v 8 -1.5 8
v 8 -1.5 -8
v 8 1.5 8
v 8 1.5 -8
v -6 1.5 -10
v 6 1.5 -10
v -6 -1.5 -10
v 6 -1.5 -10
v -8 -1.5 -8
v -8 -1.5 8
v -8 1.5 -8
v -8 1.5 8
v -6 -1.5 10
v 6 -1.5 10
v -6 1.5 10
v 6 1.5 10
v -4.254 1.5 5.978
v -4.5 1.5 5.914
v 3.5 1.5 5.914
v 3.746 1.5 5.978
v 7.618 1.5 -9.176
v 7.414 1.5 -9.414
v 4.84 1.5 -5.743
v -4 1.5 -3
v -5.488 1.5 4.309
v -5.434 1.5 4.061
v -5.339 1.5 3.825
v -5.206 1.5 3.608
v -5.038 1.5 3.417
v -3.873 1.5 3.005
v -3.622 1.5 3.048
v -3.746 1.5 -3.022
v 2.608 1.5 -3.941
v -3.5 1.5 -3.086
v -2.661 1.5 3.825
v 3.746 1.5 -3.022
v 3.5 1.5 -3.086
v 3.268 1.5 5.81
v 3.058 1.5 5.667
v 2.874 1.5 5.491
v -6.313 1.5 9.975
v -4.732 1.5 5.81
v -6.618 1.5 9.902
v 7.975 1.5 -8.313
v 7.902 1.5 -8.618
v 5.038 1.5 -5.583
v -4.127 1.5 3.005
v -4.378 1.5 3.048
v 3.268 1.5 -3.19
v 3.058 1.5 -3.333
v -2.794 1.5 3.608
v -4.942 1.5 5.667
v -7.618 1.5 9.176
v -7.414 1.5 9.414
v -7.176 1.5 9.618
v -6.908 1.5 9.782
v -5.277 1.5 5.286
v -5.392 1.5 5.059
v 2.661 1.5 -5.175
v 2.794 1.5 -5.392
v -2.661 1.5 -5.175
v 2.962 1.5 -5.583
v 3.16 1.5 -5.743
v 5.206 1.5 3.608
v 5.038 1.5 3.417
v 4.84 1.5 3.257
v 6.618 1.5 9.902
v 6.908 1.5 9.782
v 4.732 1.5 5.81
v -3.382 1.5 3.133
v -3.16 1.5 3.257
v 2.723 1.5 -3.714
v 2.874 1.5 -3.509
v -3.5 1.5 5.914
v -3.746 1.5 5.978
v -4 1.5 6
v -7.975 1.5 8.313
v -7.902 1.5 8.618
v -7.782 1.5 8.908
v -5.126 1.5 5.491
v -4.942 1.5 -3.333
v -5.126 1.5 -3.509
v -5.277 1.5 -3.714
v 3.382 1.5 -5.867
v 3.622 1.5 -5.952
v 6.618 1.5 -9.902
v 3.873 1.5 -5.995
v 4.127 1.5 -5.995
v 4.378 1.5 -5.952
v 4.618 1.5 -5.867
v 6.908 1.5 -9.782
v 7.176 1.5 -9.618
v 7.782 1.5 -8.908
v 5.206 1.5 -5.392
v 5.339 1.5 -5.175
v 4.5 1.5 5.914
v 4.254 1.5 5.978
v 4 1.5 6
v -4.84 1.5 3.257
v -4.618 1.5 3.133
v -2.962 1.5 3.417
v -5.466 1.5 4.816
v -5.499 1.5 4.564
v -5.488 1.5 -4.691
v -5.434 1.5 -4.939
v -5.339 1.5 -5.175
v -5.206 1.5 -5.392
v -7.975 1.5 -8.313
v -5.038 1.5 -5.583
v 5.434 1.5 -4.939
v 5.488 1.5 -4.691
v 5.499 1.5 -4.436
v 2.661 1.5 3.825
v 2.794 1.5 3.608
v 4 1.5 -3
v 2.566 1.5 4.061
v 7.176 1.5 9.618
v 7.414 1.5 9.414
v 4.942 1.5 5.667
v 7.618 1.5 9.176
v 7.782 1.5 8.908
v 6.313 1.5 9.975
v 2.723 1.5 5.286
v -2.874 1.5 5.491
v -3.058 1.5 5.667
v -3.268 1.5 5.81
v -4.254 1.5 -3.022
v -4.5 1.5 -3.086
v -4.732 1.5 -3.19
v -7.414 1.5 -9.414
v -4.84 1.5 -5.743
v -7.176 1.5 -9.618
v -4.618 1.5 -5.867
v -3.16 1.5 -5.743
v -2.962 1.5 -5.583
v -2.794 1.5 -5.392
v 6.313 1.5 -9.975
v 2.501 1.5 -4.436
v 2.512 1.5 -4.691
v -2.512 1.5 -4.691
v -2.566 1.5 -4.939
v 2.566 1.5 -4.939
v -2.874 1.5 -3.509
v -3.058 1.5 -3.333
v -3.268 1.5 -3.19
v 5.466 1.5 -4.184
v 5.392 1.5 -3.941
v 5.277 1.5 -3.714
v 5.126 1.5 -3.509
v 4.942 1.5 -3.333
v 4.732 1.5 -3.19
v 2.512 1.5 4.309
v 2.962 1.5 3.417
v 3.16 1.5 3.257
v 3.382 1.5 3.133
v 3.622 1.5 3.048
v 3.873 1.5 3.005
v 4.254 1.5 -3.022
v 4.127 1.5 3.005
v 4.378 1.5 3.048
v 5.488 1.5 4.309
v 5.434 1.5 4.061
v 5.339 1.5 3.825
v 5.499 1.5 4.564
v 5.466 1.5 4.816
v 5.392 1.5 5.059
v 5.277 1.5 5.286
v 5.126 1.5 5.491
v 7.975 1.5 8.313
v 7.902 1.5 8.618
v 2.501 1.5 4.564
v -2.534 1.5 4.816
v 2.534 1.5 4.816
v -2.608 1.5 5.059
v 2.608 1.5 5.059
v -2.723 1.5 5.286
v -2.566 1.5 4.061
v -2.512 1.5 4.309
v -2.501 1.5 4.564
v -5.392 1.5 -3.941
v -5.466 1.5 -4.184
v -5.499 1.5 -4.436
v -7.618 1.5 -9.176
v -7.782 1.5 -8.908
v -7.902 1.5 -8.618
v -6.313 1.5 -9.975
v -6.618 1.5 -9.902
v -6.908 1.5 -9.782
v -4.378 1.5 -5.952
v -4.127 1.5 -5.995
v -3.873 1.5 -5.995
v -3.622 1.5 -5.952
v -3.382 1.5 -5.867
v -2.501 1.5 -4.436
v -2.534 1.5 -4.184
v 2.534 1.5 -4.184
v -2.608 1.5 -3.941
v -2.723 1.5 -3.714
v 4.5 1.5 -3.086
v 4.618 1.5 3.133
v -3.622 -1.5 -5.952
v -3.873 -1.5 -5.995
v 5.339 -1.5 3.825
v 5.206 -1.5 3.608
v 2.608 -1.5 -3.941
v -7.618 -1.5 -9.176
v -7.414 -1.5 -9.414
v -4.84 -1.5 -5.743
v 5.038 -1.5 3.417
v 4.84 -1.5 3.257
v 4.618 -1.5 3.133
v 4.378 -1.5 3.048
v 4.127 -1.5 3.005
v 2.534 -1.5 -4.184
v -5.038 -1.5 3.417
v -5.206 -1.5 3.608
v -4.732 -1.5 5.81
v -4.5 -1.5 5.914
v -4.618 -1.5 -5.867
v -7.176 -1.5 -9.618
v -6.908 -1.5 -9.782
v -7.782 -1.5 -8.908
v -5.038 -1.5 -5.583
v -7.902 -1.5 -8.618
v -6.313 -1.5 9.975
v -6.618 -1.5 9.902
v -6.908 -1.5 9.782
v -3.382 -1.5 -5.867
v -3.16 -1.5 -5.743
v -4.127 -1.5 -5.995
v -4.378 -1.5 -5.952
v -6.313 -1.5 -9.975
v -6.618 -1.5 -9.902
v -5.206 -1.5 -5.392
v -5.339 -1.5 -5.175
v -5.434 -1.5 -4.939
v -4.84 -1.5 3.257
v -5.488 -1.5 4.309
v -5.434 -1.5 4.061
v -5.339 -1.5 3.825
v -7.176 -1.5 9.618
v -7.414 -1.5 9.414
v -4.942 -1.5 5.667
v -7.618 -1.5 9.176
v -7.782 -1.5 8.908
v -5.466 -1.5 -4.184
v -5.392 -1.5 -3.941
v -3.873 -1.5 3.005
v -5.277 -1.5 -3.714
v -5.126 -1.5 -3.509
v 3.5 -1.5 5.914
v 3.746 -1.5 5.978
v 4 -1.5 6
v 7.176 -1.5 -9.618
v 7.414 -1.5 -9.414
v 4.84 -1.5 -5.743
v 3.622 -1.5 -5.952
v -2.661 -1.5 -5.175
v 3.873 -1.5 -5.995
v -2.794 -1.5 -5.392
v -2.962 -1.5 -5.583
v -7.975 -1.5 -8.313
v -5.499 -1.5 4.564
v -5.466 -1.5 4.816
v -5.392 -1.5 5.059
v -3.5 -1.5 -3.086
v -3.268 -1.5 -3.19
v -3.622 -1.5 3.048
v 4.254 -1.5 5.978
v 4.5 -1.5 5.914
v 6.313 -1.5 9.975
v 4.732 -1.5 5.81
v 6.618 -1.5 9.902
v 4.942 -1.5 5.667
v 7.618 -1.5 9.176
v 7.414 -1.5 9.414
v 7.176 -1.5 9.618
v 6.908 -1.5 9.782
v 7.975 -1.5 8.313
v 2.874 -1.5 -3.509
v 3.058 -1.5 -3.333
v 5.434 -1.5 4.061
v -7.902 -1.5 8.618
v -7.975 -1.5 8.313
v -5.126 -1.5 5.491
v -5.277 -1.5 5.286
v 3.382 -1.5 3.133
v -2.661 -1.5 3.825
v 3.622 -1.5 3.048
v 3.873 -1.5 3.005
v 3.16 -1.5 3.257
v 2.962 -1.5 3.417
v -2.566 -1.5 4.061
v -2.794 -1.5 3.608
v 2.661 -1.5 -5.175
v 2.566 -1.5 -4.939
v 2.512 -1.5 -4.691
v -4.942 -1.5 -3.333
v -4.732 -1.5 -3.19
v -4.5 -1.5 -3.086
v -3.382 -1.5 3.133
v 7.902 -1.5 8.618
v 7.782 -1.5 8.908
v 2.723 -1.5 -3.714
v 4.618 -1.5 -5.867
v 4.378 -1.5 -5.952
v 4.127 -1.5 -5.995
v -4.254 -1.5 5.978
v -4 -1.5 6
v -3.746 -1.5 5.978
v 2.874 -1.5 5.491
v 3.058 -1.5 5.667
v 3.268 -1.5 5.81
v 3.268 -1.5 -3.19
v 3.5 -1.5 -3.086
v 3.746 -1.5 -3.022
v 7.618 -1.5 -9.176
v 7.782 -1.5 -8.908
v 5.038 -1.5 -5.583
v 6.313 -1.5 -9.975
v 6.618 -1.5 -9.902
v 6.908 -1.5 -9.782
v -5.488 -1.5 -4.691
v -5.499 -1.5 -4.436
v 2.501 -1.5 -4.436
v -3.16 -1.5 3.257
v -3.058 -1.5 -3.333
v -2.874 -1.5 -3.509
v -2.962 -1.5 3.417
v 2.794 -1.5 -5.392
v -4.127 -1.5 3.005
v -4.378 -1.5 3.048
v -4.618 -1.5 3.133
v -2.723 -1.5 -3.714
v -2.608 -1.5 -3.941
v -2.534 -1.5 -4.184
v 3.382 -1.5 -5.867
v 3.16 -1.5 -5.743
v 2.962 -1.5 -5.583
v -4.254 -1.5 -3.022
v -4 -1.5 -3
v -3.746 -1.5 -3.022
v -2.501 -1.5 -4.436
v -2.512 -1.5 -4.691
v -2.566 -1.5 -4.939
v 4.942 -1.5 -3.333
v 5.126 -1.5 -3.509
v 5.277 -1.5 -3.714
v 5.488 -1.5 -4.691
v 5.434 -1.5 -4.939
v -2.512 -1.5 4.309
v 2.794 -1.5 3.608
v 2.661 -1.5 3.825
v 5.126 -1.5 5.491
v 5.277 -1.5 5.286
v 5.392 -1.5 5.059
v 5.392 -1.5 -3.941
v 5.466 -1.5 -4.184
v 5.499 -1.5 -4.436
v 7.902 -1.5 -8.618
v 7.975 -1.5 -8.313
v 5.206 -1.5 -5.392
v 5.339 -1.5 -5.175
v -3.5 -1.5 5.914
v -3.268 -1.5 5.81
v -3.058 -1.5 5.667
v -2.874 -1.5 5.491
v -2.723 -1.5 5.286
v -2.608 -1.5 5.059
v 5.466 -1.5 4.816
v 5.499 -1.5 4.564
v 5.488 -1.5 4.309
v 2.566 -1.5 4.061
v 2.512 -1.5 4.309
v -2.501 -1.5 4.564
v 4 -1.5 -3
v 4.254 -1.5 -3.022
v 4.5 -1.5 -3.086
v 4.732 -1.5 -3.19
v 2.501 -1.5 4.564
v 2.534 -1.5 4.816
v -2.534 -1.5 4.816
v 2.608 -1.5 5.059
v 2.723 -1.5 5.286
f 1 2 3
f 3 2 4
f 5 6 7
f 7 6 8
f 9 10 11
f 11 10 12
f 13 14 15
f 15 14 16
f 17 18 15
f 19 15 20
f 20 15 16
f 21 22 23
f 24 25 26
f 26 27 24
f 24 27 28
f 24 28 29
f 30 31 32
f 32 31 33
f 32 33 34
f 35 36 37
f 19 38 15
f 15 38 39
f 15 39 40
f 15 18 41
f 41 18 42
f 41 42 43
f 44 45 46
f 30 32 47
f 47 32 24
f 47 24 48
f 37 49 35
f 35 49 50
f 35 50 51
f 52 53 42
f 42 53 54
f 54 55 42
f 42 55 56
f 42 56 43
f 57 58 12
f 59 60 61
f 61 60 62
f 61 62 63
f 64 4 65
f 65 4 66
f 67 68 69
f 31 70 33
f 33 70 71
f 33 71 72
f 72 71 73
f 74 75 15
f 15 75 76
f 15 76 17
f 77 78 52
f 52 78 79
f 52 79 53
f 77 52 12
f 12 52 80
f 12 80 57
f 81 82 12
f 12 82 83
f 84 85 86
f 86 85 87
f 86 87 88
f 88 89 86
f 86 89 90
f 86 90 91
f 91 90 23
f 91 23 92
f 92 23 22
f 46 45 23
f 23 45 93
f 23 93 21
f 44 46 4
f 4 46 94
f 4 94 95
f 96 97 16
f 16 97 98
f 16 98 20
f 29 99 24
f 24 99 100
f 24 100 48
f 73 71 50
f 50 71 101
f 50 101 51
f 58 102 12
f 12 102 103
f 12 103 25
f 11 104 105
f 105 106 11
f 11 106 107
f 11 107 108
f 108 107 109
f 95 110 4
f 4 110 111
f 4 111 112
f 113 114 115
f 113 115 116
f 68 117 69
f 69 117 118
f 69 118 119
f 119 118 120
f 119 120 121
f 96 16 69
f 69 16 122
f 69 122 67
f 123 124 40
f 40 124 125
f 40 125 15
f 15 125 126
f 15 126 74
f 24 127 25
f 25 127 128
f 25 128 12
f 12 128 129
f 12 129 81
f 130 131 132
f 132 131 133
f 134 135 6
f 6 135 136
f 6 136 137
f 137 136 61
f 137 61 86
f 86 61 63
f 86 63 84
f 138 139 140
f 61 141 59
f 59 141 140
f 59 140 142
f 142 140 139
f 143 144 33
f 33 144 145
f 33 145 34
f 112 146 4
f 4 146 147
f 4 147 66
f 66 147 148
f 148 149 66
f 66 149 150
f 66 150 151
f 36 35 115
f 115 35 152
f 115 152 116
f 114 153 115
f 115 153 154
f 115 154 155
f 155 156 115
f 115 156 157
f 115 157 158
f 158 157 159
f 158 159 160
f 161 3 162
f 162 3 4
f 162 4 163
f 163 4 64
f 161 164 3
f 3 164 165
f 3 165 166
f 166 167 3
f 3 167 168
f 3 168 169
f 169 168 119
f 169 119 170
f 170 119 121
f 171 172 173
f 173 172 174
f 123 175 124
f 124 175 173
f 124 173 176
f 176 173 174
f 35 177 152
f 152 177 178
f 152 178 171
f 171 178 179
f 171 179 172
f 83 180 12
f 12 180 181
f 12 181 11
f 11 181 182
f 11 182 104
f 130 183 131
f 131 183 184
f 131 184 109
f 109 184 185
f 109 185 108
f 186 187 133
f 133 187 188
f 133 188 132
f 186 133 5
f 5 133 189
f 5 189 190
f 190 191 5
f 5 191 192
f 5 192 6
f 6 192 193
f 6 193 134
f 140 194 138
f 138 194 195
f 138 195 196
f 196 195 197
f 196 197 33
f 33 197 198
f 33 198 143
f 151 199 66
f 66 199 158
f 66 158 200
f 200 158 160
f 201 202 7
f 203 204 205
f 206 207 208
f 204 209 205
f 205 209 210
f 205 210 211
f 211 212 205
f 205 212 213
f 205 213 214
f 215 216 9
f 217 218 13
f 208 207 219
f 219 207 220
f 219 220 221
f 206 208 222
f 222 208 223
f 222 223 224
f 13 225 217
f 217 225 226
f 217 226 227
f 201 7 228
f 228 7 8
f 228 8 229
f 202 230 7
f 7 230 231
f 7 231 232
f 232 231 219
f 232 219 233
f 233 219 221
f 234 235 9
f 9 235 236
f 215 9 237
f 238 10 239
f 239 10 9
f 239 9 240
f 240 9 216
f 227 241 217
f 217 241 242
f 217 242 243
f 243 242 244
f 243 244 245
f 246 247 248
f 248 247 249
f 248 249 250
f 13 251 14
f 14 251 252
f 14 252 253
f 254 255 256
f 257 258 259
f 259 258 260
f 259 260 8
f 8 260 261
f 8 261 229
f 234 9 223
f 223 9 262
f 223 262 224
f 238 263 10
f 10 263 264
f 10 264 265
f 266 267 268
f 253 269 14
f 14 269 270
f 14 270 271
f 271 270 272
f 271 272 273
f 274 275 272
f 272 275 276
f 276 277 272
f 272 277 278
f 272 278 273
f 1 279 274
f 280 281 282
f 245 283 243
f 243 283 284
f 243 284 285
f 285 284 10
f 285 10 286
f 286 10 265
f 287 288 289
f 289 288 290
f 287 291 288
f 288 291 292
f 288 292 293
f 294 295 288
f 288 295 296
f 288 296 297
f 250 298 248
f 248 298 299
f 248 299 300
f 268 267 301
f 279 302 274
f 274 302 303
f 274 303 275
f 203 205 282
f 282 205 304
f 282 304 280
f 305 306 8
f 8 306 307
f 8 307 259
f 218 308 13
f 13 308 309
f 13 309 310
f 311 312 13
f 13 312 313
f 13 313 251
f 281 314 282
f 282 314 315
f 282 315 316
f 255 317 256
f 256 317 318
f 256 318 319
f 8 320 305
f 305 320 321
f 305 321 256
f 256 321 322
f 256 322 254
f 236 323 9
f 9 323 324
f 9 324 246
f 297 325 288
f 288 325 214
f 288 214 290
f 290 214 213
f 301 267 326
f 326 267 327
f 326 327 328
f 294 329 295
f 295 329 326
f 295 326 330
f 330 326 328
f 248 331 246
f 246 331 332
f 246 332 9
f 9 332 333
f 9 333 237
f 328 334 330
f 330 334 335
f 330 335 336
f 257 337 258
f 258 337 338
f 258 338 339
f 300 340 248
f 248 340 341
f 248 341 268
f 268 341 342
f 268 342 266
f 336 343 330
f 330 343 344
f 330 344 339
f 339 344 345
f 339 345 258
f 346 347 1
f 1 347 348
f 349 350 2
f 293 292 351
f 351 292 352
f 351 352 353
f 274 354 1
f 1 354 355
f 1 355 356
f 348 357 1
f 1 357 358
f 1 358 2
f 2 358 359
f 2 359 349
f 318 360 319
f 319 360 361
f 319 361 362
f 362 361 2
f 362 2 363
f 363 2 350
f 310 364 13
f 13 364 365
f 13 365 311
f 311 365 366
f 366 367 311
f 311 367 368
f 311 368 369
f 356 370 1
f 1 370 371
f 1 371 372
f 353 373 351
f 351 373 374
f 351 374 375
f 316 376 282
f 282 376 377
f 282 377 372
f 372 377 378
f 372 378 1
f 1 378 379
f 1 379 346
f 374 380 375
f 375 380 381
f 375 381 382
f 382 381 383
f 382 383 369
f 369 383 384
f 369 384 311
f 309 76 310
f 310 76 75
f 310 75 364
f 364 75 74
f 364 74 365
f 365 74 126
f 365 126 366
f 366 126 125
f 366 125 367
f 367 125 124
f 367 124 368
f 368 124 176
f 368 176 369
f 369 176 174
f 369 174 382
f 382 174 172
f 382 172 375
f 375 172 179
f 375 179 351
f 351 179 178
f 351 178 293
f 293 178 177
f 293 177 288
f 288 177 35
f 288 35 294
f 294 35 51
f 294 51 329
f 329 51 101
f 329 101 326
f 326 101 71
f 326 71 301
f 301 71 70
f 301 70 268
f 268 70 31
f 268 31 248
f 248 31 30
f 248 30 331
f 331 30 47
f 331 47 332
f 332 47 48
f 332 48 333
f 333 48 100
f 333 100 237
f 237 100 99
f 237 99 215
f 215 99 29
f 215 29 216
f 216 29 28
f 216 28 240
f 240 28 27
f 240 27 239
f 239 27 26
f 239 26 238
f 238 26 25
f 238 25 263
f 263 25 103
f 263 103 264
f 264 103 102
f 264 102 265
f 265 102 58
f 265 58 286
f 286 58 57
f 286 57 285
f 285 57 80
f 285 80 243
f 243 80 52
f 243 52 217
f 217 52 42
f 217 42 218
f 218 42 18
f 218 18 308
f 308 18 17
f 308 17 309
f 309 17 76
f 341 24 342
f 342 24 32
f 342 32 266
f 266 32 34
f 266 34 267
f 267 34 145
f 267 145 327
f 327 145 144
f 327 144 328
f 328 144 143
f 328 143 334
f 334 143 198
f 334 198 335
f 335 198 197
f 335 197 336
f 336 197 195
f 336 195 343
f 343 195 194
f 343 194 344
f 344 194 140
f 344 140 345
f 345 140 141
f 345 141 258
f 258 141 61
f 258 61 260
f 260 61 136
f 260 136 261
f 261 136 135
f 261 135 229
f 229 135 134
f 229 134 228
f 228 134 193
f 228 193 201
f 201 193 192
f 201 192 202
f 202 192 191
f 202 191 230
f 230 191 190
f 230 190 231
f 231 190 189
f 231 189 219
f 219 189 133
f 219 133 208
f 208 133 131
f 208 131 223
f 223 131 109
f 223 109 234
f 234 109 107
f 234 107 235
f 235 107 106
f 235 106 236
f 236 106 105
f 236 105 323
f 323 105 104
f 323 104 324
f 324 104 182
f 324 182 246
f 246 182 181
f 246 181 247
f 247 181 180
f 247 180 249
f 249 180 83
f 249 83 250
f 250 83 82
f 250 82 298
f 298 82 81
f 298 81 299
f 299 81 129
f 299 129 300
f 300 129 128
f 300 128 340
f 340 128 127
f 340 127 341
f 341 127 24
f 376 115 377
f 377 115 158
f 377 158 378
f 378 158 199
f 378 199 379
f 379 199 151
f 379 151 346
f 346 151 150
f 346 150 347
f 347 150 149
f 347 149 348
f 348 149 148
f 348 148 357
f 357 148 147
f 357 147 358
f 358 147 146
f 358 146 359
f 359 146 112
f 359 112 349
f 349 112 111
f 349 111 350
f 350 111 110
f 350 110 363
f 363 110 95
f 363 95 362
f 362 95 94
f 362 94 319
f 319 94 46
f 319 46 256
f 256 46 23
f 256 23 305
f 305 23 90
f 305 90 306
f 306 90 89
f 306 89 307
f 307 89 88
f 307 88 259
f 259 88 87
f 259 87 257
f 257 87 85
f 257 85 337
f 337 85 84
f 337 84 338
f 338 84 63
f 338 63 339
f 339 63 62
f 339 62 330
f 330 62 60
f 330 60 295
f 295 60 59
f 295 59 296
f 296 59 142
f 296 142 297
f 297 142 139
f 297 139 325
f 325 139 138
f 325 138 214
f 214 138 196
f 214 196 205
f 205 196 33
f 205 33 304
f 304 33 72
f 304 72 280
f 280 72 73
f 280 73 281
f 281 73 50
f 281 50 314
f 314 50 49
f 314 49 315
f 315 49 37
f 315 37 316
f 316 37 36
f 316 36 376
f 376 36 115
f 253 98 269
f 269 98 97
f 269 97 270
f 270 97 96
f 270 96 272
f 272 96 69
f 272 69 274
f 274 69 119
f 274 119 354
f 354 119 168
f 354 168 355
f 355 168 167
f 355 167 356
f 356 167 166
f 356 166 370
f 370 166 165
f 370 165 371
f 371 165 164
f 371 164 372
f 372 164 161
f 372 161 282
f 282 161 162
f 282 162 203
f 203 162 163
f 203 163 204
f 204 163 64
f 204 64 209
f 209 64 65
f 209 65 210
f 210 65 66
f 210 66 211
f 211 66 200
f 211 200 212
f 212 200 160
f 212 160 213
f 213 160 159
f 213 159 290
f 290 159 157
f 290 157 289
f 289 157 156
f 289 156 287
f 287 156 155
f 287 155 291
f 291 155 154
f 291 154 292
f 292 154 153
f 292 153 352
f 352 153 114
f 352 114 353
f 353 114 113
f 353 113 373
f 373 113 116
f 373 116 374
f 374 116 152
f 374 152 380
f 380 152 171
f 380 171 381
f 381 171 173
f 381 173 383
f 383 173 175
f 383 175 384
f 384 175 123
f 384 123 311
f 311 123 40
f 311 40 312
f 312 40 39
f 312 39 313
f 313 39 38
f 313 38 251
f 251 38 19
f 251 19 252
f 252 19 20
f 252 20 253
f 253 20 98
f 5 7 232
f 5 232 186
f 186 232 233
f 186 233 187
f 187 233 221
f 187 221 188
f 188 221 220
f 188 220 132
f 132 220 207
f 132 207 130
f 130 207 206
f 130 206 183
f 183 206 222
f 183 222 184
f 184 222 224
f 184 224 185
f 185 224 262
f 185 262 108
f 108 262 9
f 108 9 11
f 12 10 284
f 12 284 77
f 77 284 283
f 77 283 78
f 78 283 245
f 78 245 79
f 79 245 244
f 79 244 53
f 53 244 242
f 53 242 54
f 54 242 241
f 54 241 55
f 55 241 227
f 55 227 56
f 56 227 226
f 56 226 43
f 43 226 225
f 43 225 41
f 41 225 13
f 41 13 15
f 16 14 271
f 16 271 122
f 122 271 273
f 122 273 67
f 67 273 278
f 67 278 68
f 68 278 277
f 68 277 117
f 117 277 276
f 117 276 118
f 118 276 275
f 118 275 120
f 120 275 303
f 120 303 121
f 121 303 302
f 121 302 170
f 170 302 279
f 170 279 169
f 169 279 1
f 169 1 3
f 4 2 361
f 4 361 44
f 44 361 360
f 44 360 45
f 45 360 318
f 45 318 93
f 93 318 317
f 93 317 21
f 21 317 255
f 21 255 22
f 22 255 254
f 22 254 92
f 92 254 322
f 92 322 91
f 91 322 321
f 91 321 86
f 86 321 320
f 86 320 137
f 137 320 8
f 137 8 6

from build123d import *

# Parameters (mm, degrees)
SKETCH1_W           = 16
SKETCH1_H           = 20
BOSS_EXTRUDE1_DEPTH = 1.5
SKETCH2_R           = 1.5
CUT_EXTRUDE1_DEPTH  = 3
FILLET1_R           = 2


with BuildPart() as part:
    # Sketch1 → Boss-Extrude1 (new, symmetric)
    with BuildSketch(Plane(origin=(0, 0, 0), x_dir=(1, 0, 0), z_dir=(0, 1, 0))):
        Rectangle(SKETCH1_W, SKETCH1_H)
    extrude(amount=BOSS_EXTRUDE1_DEPTH, both=True)

    # Sketch2 → Cut-Extrude1 (cut)
    with BuildSketch(Plane(origin=(0, 1.5, 0), x_dir=(1, 0, 0), z_dir=(0, 1, 0))):
        with Locations(Location((-4, -4.5, 0), (0, 0, 270))):
            Circle(SKETCH2_R)
        with Locations(Location((-4, 4.5, 0), (0, 0, 270))):
            Circle(SKETCH2_R)
        with Locations(Location((4, 4.5, 0), (0, 0, 270))):
            Circle(SKETCH2_R)
        with Locations(Location((4, -4.5, 0), (0, 0, 270))):
            Circle(SKETCH2_R)
    extrude(amount=-CUT_EXTRUDE1_DEPTH, mode=Mode.SUBTRACT)

    # Fillet1
    fillet1_edges = [part.edges().sort_by_distance(p)[0] for p in [
        (8, 0, 10),
        (-8, 0, 10),
        (-8, 0, -10),
        (8, 0, -10),
    ]]
    fillet(fillet1_edges, radius=FILLET1_R)


solid = part.part
